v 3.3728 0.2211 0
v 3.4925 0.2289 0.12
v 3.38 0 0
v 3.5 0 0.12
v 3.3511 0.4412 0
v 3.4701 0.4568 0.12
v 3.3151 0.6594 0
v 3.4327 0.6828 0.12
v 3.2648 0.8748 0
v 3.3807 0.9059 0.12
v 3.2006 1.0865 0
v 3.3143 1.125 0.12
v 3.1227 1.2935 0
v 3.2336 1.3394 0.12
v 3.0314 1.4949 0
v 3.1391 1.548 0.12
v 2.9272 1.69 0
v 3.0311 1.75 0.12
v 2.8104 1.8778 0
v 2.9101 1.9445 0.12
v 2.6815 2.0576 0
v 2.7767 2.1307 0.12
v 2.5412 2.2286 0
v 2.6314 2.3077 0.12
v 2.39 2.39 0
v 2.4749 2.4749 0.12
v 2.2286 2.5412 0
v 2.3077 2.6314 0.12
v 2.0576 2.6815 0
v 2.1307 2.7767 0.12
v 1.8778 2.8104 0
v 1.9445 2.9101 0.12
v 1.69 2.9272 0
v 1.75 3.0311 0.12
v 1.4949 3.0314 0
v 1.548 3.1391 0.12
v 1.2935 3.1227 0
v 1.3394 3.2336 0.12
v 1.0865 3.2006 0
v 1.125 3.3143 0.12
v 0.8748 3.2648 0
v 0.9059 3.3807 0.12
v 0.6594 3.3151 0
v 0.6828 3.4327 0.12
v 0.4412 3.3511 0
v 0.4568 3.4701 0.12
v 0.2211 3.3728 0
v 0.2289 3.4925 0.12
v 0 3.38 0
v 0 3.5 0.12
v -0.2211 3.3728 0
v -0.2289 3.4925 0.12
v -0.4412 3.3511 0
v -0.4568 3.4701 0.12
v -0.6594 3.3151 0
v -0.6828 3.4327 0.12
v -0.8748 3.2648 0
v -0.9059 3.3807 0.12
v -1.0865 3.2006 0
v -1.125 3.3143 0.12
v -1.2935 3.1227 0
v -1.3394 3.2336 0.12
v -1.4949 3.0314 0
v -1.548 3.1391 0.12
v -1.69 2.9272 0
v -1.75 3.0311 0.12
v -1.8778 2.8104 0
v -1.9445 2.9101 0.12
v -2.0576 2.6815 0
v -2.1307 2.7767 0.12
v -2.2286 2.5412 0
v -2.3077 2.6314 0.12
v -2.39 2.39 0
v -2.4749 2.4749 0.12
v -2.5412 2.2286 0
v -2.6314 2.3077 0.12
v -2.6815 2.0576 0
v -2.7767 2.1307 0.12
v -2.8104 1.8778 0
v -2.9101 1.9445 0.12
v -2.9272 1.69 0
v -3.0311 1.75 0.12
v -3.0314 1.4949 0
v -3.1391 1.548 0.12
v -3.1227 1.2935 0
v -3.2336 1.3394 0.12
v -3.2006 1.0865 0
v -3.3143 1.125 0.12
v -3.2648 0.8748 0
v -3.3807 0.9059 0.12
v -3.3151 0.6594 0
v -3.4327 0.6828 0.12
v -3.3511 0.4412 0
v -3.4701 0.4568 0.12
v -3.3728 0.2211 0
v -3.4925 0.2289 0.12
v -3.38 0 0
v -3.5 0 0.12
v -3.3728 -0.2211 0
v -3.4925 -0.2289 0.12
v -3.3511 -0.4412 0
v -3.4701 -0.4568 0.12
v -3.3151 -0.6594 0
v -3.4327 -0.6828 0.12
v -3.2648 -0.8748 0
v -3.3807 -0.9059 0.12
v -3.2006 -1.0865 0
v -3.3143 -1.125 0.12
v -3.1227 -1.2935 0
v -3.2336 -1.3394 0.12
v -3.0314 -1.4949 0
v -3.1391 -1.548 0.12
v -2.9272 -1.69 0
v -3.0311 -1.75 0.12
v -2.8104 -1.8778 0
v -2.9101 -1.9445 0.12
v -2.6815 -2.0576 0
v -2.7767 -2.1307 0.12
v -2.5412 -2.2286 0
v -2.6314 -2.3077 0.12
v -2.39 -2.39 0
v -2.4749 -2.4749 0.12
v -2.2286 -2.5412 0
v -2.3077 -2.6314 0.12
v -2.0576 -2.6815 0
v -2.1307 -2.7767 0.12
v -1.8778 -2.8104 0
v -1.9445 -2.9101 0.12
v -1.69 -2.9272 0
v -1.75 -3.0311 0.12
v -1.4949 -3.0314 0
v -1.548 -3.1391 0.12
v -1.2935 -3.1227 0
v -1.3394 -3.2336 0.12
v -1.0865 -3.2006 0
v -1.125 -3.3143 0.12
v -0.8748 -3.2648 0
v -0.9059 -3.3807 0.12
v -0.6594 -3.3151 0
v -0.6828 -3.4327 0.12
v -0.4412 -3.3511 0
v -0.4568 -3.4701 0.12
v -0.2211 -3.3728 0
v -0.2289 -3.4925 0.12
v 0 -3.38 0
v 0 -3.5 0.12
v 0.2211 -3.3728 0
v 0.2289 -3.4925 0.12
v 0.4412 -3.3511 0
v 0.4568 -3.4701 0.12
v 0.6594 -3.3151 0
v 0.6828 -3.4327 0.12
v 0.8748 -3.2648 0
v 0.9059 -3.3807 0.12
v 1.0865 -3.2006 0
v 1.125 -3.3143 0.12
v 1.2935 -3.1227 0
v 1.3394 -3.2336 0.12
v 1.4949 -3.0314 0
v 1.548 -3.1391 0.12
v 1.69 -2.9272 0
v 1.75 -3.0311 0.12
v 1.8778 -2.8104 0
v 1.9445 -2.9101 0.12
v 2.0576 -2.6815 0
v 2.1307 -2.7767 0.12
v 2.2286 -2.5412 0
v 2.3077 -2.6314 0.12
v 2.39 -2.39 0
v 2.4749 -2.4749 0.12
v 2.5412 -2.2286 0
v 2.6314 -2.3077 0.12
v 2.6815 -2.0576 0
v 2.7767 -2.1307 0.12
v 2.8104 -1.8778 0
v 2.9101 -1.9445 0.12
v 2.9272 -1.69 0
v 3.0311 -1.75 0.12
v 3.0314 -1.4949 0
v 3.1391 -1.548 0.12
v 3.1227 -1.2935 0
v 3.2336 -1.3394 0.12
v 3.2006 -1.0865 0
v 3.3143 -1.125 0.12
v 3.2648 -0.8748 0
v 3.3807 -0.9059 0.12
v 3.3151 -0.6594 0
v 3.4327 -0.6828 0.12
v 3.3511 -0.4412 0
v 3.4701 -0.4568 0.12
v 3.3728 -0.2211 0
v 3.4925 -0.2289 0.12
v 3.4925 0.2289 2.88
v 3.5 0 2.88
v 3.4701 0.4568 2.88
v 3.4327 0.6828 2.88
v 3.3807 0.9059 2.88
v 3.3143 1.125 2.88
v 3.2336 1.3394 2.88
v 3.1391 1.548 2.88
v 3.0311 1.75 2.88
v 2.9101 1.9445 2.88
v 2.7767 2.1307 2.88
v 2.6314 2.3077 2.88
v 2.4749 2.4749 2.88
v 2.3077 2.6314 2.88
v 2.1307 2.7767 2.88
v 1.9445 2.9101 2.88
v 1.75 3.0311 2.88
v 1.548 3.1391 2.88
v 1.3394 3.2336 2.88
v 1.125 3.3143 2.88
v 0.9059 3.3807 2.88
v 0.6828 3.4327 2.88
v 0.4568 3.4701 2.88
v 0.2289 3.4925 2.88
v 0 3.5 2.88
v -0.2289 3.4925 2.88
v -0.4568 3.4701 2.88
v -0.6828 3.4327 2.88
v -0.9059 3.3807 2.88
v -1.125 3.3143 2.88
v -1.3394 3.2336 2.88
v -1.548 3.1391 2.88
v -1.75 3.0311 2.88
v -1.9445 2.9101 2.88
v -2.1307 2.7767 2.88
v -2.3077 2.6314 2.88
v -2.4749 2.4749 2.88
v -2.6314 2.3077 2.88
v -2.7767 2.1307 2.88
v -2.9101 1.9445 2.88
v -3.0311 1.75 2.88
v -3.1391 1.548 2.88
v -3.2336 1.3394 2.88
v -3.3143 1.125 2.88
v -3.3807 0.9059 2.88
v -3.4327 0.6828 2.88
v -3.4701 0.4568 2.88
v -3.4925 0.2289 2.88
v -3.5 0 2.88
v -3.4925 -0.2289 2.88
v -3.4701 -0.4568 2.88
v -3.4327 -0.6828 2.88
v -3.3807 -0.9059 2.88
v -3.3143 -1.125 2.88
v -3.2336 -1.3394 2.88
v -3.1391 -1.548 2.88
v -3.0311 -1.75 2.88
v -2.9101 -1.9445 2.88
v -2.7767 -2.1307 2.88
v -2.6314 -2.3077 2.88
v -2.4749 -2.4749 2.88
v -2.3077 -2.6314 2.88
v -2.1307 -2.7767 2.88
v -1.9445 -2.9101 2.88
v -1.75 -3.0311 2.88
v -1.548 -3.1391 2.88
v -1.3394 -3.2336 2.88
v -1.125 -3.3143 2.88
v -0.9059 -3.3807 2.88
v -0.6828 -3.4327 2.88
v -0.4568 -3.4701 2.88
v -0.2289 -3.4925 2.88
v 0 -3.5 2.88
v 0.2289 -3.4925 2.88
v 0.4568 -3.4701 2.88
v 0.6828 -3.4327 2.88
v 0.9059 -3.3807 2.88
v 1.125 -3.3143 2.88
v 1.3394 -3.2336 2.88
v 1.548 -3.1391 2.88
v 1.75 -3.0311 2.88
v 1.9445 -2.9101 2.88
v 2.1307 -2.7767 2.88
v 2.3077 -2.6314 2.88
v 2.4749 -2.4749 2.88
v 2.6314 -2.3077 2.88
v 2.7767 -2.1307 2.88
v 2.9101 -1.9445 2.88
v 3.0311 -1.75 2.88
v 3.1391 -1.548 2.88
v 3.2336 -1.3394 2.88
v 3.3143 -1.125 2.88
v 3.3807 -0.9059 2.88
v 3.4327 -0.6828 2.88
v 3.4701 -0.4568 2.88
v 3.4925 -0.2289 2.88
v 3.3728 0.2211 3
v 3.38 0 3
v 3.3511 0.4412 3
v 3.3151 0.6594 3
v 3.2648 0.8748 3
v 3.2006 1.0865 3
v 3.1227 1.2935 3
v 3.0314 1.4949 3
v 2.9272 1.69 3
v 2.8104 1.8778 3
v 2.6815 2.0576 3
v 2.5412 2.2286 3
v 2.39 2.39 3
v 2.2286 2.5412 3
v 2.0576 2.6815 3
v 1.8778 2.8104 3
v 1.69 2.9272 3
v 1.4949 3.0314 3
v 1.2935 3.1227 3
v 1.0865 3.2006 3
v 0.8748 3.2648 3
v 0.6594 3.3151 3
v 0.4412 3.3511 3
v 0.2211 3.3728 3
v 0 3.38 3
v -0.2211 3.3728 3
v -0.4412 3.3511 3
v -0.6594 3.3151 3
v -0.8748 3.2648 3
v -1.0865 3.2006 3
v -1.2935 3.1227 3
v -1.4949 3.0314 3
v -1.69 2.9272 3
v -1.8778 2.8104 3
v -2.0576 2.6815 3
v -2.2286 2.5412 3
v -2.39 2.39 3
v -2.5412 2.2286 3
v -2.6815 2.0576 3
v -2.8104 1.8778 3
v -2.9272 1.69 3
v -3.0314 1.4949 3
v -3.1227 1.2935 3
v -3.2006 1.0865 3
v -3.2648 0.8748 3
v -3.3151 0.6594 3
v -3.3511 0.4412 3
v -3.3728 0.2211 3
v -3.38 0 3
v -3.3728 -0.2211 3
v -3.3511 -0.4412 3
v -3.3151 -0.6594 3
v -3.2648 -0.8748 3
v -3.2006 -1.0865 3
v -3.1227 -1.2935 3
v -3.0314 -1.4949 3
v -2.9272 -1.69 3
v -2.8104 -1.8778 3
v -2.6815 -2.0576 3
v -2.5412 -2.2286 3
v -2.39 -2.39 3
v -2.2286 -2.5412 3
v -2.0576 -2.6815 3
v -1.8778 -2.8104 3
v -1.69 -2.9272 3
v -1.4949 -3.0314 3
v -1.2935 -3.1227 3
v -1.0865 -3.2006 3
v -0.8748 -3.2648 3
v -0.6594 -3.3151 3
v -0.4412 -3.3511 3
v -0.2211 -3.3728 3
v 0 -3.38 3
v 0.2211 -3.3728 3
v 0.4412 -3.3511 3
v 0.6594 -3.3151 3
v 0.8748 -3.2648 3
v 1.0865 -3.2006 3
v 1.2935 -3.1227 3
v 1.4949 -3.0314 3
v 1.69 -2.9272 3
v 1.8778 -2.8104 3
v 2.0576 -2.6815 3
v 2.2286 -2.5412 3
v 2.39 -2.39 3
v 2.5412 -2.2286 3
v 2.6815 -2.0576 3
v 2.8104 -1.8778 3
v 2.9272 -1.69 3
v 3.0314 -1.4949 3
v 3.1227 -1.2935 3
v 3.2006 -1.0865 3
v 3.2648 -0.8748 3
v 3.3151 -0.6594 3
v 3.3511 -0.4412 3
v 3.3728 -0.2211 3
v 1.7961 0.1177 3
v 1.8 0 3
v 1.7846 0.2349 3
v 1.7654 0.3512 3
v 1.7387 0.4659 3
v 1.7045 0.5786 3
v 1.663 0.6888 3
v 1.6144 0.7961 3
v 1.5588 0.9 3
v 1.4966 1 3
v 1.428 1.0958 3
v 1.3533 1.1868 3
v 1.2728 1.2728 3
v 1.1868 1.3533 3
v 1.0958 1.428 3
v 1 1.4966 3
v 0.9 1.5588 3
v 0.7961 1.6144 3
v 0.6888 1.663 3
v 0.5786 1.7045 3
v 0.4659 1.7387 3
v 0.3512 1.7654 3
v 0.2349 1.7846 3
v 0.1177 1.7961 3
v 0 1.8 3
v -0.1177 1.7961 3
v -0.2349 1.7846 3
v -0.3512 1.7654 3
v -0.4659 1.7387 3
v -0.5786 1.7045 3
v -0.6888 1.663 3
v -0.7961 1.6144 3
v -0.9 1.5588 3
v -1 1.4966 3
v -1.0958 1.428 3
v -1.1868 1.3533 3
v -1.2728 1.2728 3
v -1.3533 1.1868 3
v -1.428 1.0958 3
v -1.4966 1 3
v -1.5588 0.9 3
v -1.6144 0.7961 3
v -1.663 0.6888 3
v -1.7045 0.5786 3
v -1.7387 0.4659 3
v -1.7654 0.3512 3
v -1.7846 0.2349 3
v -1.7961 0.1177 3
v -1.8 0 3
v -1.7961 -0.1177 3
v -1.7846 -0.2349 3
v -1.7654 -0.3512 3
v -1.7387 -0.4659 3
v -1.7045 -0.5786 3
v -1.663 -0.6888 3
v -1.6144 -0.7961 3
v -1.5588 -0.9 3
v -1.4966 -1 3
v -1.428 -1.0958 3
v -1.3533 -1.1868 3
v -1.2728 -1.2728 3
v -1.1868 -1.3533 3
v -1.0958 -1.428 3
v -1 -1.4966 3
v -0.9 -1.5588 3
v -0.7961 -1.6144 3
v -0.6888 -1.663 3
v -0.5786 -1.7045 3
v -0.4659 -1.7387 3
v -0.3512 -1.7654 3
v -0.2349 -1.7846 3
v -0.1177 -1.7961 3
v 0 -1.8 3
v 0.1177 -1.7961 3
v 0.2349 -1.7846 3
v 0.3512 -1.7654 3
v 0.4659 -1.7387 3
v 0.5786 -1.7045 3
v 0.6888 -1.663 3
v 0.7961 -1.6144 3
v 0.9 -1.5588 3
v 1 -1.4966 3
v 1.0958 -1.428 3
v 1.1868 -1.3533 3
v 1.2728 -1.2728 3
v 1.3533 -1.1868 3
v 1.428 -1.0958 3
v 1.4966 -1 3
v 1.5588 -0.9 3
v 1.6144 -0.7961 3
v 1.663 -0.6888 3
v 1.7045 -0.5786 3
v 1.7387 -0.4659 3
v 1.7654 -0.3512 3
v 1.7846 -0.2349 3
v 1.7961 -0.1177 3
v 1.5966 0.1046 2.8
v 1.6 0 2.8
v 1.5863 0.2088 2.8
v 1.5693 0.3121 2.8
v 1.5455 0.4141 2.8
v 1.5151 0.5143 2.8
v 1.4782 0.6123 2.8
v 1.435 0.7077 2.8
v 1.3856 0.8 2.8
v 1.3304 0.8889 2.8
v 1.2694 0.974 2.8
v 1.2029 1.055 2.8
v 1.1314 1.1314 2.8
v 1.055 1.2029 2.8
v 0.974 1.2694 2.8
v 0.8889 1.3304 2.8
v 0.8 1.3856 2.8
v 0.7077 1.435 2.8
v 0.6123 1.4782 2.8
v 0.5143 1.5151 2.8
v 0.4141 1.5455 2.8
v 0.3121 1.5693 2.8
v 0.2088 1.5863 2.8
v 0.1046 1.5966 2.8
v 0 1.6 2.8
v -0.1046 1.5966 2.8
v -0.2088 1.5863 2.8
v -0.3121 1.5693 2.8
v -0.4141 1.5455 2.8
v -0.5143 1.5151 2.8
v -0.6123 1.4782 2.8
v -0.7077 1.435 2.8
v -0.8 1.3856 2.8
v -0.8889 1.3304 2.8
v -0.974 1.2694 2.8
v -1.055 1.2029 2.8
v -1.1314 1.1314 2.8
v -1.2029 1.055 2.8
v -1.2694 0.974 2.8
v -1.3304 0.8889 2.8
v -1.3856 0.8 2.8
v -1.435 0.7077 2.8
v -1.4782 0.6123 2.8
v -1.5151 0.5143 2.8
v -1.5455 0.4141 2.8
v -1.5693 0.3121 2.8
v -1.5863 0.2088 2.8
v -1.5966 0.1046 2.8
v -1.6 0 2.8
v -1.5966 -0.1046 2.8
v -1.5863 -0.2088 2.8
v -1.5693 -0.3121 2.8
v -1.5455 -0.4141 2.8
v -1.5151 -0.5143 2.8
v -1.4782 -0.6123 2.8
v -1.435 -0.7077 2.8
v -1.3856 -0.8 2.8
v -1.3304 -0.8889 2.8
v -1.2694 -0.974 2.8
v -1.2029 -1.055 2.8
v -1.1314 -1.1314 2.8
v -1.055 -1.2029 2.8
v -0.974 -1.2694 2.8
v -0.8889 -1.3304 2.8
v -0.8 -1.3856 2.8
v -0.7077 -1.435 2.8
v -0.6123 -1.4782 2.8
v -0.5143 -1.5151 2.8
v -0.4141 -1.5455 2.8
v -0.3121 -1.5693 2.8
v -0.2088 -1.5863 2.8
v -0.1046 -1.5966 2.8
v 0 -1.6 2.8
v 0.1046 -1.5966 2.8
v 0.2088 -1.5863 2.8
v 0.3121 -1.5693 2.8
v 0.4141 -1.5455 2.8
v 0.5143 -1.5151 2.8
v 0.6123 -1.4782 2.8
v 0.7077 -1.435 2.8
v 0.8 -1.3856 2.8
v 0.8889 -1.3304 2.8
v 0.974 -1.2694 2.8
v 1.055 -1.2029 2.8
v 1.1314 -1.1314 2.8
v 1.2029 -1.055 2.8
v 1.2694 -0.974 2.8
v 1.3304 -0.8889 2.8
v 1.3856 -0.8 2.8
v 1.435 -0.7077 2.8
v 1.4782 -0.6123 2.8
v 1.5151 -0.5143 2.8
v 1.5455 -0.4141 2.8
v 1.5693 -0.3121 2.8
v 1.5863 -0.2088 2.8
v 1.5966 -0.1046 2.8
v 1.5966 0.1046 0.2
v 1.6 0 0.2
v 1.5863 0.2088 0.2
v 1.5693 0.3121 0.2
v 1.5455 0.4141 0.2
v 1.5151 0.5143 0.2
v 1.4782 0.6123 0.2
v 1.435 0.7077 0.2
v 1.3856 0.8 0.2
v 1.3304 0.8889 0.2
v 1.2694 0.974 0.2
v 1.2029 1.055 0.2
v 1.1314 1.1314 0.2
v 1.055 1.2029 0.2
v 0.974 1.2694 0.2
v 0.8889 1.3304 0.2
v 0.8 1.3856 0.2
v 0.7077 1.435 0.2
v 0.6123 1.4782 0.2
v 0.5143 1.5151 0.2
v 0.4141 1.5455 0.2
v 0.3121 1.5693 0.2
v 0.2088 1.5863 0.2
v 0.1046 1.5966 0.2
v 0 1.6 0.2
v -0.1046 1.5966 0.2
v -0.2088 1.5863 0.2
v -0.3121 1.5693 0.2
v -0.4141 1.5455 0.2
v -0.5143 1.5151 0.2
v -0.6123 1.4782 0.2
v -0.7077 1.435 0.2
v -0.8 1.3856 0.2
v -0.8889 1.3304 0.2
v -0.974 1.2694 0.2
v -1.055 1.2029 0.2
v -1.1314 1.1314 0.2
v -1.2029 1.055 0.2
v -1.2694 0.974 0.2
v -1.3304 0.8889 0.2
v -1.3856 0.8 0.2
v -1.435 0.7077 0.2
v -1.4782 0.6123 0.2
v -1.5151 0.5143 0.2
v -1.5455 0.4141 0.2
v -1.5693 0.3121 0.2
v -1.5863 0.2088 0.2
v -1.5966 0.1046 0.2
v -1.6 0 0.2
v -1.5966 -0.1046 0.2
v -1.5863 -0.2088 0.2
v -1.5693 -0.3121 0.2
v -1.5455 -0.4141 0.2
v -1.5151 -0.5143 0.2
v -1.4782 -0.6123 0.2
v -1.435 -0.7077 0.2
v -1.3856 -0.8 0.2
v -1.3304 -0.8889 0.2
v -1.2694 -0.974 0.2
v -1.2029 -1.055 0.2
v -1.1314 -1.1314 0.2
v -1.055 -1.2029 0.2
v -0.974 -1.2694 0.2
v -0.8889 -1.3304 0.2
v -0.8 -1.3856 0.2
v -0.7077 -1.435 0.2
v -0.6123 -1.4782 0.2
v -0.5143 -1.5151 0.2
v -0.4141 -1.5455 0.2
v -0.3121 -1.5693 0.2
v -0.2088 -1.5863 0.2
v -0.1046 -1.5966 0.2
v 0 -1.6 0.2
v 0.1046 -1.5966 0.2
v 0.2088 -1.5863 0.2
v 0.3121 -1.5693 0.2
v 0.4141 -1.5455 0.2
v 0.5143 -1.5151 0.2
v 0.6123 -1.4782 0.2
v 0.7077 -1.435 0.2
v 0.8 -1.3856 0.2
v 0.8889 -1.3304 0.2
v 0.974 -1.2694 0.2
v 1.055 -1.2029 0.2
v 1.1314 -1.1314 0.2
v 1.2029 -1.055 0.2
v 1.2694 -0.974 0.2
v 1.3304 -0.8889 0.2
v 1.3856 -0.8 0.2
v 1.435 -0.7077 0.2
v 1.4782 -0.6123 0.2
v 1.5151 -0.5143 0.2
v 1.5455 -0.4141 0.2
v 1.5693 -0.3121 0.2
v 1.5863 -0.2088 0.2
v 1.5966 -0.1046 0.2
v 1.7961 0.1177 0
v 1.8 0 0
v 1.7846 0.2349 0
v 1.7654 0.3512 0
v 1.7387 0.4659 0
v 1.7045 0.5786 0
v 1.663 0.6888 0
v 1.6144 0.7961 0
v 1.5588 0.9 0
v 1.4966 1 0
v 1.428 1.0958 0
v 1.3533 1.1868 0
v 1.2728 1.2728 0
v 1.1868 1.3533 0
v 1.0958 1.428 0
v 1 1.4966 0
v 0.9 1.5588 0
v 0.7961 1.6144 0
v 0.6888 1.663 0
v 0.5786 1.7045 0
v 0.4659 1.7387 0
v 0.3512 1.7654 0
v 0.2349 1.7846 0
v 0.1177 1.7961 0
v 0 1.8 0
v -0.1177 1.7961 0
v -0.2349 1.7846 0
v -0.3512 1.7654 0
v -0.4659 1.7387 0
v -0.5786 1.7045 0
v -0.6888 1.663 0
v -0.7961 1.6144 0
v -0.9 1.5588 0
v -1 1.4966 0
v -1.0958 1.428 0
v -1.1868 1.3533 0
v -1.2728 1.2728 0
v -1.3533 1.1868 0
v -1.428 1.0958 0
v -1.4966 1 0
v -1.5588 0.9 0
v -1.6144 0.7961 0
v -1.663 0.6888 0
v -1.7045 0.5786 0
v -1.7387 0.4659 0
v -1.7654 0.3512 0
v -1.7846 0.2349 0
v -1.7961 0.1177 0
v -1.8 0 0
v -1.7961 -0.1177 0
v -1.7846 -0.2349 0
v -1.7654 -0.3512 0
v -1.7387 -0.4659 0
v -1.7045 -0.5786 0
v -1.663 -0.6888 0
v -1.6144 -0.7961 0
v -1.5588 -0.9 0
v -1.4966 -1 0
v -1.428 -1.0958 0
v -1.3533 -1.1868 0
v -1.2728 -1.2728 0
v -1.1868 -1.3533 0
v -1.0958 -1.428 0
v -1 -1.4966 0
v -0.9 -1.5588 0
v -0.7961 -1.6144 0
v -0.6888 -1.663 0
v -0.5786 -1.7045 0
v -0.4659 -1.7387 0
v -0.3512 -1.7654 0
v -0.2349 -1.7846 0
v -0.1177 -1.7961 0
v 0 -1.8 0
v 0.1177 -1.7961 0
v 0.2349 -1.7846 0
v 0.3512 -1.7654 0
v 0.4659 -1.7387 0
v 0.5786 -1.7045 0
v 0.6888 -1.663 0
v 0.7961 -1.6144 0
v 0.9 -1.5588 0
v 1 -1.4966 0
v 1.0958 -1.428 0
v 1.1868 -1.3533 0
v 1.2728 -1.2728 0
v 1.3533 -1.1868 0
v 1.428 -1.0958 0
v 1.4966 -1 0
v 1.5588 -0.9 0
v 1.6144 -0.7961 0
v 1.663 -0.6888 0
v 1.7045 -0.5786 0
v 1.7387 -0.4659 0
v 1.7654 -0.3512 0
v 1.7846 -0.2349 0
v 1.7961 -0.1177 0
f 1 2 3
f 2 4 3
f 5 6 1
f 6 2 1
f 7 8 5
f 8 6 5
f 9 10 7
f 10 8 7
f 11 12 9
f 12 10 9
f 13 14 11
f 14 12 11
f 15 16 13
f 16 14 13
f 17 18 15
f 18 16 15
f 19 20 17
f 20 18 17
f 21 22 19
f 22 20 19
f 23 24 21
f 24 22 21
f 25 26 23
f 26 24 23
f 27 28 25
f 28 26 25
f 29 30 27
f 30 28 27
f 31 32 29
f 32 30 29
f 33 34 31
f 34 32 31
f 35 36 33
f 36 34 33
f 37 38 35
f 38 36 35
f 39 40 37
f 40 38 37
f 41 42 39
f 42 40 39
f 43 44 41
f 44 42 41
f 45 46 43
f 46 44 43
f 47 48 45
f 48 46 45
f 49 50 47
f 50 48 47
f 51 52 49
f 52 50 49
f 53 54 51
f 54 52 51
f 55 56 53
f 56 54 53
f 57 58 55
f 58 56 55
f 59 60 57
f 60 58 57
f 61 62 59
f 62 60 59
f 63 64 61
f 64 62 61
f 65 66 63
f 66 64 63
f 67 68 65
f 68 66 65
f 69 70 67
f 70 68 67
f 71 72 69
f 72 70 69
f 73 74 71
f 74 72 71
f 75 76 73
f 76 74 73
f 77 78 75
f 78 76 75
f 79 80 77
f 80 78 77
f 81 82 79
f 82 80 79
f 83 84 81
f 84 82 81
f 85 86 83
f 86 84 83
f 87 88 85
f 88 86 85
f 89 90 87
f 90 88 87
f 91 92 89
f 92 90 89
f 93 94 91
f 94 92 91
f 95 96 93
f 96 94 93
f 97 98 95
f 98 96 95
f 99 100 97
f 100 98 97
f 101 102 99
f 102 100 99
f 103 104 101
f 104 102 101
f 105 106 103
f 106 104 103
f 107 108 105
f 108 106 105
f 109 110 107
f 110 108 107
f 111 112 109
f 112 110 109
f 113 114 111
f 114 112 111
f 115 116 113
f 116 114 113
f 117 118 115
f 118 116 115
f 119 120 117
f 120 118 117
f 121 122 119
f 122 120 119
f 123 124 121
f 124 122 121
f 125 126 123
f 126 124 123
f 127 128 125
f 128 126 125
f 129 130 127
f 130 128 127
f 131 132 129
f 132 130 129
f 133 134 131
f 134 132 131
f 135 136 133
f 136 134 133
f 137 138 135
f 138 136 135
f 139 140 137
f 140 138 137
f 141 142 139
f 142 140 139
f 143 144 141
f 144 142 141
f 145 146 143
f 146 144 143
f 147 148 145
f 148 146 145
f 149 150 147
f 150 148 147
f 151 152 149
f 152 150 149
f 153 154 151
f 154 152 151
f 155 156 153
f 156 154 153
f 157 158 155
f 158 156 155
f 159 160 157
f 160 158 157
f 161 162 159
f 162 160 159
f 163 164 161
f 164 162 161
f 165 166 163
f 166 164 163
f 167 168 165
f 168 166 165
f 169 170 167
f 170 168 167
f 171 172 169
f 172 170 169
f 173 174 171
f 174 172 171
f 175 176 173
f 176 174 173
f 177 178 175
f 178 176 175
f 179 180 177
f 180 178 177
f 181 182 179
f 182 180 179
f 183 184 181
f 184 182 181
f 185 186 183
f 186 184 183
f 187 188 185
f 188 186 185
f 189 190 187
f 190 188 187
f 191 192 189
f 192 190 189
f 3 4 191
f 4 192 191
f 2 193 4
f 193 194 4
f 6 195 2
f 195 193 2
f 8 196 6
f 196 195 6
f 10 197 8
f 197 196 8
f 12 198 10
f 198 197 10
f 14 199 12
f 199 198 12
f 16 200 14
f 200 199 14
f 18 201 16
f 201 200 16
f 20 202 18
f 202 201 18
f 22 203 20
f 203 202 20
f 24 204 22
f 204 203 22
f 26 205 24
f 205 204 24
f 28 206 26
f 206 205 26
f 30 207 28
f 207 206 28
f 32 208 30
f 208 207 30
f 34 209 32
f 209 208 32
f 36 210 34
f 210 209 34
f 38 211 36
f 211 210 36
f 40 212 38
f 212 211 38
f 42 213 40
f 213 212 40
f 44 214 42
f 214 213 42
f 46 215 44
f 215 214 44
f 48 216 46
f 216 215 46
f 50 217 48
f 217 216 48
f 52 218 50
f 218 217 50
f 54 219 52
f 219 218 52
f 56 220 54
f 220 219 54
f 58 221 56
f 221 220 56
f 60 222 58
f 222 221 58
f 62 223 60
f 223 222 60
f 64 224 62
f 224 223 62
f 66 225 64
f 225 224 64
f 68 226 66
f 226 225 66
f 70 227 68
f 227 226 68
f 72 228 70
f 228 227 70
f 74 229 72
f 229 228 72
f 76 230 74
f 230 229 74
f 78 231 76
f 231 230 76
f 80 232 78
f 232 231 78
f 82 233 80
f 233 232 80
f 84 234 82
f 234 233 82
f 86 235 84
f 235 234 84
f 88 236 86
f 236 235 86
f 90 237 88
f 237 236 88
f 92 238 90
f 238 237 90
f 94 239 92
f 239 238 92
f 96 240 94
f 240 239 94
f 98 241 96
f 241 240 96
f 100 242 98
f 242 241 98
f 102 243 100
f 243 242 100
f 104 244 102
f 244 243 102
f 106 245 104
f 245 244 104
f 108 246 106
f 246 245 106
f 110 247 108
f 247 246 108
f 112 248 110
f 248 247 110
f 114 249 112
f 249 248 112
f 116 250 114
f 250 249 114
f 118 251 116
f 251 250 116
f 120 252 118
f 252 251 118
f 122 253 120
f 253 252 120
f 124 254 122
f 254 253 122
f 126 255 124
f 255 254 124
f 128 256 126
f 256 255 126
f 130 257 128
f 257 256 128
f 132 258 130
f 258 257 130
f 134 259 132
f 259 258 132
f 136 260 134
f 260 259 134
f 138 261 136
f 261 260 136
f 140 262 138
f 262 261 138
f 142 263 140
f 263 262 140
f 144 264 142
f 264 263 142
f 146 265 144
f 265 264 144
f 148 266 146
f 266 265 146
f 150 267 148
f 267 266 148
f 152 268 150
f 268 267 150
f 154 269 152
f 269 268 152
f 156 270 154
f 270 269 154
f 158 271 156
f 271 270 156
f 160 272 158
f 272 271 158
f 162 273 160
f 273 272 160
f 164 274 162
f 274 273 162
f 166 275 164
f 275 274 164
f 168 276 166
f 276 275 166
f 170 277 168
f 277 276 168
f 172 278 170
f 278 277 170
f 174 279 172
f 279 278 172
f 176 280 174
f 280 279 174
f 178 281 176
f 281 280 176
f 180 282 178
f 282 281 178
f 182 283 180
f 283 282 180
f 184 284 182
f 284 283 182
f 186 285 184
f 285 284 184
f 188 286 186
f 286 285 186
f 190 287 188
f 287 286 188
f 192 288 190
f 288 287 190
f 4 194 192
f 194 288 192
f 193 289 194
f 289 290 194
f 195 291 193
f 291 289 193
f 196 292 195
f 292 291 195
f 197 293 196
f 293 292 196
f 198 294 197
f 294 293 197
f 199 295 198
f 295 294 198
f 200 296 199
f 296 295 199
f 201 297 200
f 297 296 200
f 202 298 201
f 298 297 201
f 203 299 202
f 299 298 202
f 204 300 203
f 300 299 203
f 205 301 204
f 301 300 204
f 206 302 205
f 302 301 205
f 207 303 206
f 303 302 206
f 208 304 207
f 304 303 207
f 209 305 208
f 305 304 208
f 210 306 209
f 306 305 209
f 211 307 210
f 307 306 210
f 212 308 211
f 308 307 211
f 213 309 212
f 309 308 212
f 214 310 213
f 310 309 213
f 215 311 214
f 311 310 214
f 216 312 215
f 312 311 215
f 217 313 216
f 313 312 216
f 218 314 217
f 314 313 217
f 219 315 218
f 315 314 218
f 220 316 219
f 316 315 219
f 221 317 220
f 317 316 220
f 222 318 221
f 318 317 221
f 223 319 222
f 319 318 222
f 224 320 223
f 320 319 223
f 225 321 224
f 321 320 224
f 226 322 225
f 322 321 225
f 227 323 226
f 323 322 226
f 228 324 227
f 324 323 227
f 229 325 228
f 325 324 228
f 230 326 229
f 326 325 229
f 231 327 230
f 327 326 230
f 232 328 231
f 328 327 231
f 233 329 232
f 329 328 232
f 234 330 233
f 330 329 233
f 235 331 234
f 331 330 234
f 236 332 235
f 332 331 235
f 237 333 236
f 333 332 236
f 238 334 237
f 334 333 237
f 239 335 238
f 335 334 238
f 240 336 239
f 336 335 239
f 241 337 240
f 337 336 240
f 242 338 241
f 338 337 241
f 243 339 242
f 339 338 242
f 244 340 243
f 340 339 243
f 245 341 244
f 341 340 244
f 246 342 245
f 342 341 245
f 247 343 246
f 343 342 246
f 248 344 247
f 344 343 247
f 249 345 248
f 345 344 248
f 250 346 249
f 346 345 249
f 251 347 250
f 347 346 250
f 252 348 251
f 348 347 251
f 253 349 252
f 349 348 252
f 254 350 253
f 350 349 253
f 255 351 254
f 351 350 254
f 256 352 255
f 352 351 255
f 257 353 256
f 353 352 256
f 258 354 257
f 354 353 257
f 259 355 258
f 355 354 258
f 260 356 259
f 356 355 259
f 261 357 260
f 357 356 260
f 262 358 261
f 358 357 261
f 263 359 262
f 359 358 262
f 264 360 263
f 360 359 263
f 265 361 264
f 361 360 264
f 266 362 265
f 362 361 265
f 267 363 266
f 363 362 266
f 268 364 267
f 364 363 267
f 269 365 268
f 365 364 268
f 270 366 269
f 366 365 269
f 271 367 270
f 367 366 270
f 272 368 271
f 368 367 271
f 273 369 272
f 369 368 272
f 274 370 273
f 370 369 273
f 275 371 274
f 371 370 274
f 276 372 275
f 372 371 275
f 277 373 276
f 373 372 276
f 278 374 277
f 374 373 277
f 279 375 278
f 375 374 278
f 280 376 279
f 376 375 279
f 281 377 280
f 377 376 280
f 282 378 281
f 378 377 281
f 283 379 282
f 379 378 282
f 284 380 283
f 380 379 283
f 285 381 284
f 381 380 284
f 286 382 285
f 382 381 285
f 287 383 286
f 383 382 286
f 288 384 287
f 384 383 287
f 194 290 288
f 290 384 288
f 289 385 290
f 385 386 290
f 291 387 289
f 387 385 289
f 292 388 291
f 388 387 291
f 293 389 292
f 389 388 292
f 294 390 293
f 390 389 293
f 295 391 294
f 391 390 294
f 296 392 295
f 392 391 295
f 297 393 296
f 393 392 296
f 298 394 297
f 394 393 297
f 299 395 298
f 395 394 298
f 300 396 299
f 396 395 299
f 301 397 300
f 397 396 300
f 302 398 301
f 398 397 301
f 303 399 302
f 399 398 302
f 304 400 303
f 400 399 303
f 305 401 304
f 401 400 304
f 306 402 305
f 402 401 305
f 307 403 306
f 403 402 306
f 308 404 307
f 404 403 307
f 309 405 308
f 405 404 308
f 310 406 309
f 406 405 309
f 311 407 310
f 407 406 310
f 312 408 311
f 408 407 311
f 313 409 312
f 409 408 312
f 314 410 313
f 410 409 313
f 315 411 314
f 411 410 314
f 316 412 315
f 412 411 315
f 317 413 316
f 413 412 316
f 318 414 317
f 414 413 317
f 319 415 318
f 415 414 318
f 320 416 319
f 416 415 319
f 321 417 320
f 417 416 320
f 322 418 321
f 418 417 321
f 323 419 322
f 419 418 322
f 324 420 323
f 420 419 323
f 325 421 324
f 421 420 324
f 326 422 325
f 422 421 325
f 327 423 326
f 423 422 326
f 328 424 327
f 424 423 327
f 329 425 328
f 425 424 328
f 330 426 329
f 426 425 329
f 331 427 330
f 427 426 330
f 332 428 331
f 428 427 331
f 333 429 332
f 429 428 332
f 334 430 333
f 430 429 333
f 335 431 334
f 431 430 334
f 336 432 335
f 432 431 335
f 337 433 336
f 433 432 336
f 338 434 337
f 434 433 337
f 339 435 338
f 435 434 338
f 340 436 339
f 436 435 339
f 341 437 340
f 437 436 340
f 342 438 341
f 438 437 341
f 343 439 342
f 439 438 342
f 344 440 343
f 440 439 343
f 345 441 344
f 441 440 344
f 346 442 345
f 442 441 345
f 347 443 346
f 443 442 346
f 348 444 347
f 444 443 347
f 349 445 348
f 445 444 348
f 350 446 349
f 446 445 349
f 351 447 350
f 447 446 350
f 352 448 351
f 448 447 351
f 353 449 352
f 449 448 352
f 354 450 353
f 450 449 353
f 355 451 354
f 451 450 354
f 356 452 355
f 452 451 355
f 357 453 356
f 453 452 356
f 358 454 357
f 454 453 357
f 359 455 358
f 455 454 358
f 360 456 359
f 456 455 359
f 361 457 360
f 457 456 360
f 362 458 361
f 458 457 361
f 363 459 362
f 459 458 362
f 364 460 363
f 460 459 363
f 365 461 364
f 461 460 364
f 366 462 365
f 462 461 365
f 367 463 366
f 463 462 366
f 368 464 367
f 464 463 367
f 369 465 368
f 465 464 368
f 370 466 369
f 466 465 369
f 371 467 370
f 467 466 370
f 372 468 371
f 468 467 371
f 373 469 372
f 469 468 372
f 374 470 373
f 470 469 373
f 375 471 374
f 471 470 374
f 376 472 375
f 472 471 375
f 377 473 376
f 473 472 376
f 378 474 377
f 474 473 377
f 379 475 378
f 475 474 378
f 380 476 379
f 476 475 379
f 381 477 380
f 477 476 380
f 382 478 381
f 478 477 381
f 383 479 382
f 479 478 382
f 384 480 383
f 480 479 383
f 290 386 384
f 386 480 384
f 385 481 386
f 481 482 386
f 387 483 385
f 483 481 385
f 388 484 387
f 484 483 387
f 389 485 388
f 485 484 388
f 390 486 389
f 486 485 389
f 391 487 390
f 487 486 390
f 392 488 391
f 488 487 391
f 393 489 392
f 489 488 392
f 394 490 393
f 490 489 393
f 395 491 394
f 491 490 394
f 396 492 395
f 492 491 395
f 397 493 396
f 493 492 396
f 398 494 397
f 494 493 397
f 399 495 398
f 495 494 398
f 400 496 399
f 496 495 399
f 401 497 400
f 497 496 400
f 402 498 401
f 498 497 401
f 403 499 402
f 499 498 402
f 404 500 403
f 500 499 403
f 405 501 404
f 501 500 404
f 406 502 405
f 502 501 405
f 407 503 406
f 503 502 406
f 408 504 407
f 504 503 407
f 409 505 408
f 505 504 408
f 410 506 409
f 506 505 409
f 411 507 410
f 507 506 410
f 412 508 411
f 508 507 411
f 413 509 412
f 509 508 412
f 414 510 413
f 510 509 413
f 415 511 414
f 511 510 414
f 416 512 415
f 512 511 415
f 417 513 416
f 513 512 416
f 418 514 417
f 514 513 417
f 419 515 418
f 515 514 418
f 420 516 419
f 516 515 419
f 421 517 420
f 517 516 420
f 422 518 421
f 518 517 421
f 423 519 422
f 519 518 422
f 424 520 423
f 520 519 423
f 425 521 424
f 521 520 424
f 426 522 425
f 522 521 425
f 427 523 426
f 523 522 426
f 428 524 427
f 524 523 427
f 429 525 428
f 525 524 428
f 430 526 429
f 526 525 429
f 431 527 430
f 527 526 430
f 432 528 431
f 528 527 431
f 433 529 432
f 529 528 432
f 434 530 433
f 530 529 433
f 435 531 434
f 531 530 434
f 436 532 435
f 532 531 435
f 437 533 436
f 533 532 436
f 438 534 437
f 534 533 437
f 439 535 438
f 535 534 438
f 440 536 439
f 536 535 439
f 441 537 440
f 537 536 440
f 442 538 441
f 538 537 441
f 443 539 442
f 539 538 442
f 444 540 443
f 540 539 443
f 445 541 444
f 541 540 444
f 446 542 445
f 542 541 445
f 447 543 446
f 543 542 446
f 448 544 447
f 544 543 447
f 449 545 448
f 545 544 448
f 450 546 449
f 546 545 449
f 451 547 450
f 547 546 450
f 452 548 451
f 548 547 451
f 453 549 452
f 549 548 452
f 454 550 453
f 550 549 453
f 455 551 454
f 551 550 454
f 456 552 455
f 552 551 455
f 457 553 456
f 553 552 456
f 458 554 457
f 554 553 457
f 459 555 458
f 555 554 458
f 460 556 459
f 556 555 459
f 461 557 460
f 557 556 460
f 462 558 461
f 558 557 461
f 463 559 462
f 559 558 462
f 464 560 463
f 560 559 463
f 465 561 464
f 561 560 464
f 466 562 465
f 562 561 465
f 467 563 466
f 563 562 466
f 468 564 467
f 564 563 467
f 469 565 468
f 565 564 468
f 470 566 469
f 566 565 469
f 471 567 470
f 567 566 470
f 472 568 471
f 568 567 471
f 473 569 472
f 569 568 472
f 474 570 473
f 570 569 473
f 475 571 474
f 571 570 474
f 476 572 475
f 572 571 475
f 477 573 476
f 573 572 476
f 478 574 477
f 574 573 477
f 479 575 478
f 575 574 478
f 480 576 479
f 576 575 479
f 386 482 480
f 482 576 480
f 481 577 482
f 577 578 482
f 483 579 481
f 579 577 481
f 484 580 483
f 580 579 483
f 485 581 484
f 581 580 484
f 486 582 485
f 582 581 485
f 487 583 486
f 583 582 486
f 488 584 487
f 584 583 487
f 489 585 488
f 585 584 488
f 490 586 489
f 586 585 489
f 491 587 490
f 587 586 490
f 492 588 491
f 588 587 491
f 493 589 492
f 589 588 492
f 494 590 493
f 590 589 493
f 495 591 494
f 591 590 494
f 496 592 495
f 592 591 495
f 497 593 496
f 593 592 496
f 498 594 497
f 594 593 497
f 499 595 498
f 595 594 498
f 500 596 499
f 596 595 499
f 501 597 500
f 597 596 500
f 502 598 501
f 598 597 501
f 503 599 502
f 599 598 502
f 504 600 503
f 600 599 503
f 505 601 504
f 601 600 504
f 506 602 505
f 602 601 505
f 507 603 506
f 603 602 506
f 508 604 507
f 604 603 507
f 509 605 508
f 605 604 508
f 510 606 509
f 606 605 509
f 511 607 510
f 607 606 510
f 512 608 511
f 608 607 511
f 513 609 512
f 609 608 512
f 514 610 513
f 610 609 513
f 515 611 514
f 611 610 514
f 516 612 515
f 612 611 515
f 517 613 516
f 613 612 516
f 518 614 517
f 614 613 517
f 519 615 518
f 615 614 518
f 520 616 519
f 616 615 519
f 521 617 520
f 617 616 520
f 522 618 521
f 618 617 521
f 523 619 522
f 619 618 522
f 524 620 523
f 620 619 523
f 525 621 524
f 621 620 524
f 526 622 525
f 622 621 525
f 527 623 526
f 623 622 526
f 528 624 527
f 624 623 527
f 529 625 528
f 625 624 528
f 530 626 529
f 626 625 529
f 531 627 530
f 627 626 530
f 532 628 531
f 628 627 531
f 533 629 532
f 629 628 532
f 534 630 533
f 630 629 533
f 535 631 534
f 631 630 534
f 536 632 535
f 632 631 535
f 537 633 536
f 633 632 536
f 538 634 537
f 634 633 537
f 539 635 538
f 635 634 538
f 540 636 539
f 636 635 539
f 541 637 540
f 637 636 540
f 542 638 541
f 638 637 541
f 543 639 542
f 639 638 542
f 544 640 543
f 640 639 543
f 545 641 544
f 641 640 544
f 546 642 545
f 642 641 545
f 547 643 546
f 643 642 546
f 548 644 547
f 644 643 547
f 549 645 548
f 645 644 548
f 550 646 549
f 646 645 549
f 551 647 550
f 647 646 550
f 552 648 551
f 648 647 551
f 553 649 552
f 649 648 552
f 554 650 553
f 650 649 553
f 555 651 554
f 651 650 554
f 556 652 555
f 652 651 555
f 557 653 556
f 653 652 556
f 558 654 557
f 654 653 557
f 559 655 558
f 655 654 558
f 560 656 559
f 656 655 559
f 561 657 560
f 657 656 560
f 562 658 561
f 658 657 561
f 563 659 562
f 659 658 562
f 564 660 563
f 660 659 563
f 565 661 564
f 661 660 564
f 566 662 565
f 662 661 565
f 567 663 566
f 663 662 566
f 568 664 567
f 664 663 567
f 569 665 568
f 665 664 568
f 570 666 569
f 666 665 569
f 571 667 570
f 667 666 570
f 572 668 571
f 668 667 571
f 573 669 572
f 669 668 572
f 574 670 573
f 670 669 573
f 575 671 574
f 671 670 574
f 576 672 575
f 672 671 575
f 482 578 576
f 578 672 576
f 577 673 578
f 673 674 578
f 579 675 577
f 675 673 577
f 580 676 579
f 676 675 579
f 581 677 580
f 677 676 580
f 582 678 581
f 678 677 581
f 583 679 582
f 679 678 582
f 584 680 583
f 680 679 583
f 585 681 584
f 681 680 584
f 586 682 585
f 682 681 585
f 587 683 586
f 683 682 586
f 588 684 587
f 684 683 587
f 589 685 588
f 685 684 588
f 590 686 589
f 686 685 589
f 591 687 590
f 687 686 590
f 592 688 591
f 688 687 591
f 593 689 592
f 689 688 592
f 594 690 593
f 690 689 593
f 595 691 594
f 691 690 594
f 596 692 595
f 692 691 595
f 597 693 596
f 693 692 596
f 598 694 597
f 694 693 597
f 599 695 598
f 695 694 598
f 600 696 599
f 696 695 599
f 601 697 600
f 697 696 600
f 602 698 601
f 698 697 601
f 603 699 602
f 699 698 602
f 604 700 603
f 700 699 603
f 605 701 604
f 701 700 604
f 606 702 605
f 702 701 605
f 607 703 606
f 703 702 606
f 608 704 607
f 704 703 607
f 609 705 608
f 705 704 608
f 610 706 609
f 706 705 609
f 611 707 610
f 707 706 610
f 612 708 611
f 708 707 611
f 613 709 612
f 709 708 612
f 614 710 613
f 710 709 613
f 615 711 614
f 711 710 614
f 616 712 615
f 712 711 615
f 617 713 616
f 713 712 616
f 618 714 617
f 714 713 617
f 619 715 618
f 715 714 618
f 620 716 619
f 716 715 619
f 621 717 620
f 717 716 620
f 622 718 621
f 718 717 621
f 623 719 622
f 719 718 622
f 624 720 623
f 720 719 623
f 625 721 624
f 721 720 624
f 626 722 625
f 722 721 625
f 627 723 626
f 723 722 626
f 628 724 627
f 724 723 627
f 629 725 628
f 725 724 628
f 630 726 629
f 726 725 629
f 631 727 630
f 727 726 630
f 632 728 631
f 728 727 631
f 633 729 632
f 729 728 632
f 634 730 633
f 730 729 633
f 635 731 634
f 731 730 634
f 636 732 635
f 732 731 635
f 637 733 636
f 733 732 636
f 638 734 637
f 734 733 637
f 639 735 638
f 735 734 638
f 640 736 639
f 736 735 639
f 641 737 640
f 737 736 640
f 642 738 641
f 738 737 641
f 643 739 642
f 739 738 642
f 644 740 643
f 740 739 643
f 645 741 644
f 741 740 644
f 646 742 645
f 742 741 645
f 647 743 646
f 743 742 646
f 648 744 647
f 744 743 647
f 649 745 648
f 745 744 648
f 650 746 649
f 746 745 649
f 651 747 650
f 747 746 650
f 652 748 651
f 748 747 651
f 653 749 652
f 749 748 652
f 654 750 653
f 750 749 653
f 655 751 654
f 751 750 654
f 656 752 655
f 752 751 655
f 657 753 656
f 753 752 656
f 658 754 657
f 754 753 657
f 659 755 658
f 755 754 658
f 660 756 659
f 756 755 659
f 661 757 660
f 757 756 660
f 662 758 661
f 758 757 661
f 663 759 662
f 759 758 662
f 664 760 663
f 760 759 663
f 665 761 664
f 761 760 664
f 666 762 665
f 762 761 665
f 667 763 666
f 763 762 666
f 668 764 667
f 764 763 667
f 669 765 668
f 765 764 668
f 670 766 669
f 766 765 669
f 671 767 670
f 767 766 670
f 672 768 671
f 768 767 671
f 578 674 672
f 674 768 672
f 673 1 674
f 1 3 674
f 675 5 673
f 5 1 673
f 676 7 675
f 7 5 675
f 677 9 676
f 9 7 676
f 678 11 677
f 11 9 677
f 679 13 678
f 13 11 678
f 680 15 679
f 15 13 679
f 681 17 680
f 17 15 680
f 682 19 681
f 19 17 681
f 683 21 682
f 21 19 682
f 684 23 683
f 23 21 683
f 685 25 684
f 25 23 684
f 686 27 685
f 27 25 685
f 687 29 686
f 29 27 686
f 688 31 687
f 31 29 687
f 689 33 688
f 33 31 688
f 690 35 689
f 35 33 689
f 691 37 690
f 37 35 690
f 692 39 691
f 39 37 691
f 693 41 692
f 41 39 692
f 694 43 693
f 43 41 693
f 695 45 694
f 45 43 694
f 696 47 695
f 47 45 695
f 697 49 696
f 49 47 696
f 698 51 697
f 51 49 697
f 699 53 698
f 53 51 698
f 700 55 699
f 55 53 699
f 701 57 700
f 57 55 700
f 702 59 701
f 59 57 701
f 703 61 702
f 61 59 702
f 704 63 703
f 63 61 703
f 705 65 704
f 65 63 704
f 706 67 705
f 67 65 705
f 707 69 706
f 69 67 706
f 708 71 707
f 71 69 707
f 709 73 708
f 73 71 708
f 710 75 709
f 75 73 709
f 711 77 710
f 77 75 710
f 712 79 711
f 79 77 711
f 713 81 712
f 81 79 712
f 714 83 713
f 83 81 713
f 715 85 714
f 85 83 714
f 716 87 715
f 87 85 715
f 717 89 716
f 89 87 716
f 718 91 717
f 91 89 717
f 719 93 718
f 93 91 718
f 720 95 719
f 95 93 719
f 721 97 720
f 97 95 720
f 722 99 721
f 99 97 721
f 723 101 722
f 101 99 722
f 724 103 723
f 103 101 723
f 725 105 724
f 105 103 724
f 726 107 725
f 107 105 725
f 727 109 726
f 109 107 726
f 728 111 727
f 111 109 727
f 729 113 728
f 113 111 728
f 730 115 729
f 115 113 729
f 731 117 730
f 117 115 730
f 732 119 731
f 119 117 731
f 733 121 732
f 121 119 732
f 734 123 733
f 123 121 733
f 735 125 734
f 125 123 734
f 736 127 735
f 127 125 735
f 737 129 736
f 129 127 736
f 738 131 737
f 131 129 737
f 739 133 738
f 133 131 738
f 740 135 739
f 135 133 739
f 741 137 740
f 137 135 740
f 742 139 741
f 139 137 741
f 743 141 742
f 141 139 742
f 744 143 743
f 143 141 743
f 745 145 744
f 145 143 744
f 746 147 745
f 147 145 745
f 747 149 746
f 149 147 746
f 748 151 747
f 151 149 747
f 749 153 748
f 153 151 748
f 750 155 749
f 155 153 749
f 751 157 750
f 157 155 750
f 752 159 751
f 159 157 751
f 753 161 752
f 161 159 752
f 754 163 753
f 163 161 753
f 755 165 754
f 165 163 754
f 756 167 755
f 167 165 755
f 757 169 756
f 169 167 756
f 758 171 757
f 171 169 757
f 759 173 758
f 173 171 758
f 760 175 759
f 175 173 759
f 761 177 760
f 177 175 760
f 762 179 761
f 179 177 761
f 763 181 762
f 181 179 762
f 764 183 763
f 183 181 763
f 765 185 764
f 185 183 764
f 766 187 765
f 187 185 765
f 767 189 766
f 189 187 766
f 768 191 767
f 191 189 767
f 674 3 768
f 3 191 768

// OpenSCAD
// OOMP generic catalogue model; units: mm.
// Stud length is additional to body depth. Tapping depths are model assumptions.
variant = "full"; // [full, display]
family = "spacer";
connection_type = "plain";
depth_mm = 3;
stud_length_mm = 0;
tapped_depth_mm = 0;
bore_mm = 3.2;
outer_diameter_mm = 7;
across_flats_mm = 6;
thread_nominal_diameter_mm = 3;
thread_pitch_mm = 0.5;
edge_chamfer_mm = 0.12;
mouth_chamfer_mm = 0.2;
angular_segments = 96;
samples_per_pitch = 16;

// Boundary travels up the outside, then down any tapped/plain bore.
// Equal-height rings at shoulders form the annular shoulder faces.
n = angular_segments;
threaded = family == "standoff";
has_stud = connection_type == "stud_to_tapped" || connection_type == "stud_to_stud";
two_studs = connection_type == "stud_to_stud";
through = !threaded || connection_type == "tapped_to_tapped";
pitch = thread_pitch_mm;
diameter = threaded ? thread_nominal_diameter_mm : bore_mm;
minor = diameter - 5*sqrt(3)*pitch/8;
transition = mouth_chamfer_mm + (threaded ? 5*sqrt(3)*pitch/16 : 0);
tip_chamfer = mouth_chamfer_mm + 17*sqrt(3)*pitch/48;
function sorted(v) = len(v)<=1 ? v : let(p=v[0])
    concat(sorted([for(x=v) if(x<p-1e-8) x]), [p], sorted([for(x=v) if(x>p+1e-8) x]));
function reverse(v) = [for(i=[len(v)-1:-1:0]) v[i]];
function theta(i) = i*360/n;
function fract(x) = x-floor(x);
function phase_distance(i,z) = abs(fract(z/pitch-theta(i)/360+0.5)-0.5);
function thread_r(i,z) = minor/2 + min(5*sqrt(3)*pitch/16,
    max(0,(phase_distance(i,z)-0.125)*pitch*sqrt(3)));
function stud_r(i,z,tip) = min(diameter/2 - (variant=="full" ?
    min(17*sqrt(3)*pitch/48,max(0,(phase_distance(i,z)-0.0625)*pitch*sqrt(3))) : 0),
    diameter/2-tip_chamfer+abs(z-tip));
function body_r(i,z) = (threaded ? across_flats_mm/2/cos(theta(i)%60-30) : outer_diameter_mm/2)
    - max(0,edge_chamfer_mm-min(z,depth_mm-z));
function bore_r(i,z) = max(threaded ? (variant=="full" ? thread_r(i,z) : minor/2) : diameter/2,
    diameter/2+mouth_chamfer_mm-(through ? min(z,depth_mm-z) : depth_mm-z));
function stud_z(a,b,tip) = let(count=variant=="full" ? ceil(stud_length_mm/pitch*samples_per_pitch) : 1)
    sorted(concat([for(i=[0:count]) a+(b-a)*i/count], [tip==a ? tip+tip_chamfer : tip-tip_chamfer]));
body_z = sorted([0,edge_chamfer_mm,depth_mm-edge_chamfer_mm,depth_mm]);
low = through ? 0 : depth_mm-tapped_depth_mm;
count = threaded && variant=="full" ? ceil((depth_mm-low)/pitch*samples_per_pitch) : 1;
bore_z = two_studs ? [] : reverse(sorted(concat(
    [for(i=[0:count]) low+(depth_mm-low)*i/count],
    [depth_mm-mouth_chamfer_mm,depth_mm-transition],
    through ? [mouth_chamfer_mm,transition] : [])));
// Ring descriptors: [height, kind, tip]. Kind: 0 body, 1 stud, 2 bore.
rings = concat(
    has_stud ? [for(z=stud_z(-stud_length_mm,0,-stud_length_mm)) [z,1,-stud_length_mm]] : [],
    [for(z=body_z) [z,0,0]],
    two_studs ? [for(z=stud_z(depth_mm,depth_mm+stud_length_mm,depth_mm+stud_length_mm)) [z,1,depth_mm+stud_length_mm]] : [],
    [for(z=bore_z) [z,2,0]]);
function radius(i,ring) = ring[1]==0 ? body_r(i,ring[0]) :
    ring[1]==1 ? stud_r(i,ring[0],ring[2]) : bore_r(i,ring[0]);
points = concat([for(ring=rings) for(i=[0:n-1])
    [radius(i,ring)*cos(theta(i)),radius(i,ring)*sin(theta(i)),ring[0]]],
    through ? [] : [[0,0,rings[0][0]],[0,0,rings[len(rings)-1][0]]]);
center = len(rings)*n;
last = (len(rings)-1)*n;
// OpenSCAD winding is opposite to STL winding.
faces = concat(
    [for(j=[0:len(rings)-(through ? 1 : 2)]) for(i=[0:n-1]) each
        let(a=j*n+i,b=j*n+(i+1)%n,c=((j+1)%len(rings))*n+(i+1)%n,d=((j+1)%len(rings))*n+i)
        [[a,c,b],[a,d,c]]],
    through ? [] : [for(i=[0:n-1]) each let(k=(i+1)%n)
        [[center,i,k],[center+1,last+k,last+i]]]);
assert(family=="spacer" || family=="standoff");
assert(!threaded || connection_type=="tapped_to_tapped" || has_stud);
assert(depth_mm>0 && diameter>0 && pitch>0);
assert(variant=="full" || variant=="display");
assert(n>=24 && n%12==0 && samples_per_pitch>=8);
assert(mouth_chamfer_mm>0 && mouth_chamfer_mm<depth_mm/2);
assert(edge_chamfer_mm>=0 && edge_chamfer_mm<depth_mm/2);
assert(diameter+4*max(mouth_chamfer_mm,edge_chamfer_mm) < (threaded ? across_flats_mm : outer_diameter_mm));
assert(!has_stud || stud_length_mm>2*mouth_chamfer_mm);
assert(!through || !threaded || 2*transition<depth_mm);
assert(connection_type!="stud_to_tapped" || (tapped_depth_mm>transition && tapped_depth_mm<depth_mm));
color([0.86,0.85,0.81]) polyhedron(points=points,faces=faces,convexity=20);
